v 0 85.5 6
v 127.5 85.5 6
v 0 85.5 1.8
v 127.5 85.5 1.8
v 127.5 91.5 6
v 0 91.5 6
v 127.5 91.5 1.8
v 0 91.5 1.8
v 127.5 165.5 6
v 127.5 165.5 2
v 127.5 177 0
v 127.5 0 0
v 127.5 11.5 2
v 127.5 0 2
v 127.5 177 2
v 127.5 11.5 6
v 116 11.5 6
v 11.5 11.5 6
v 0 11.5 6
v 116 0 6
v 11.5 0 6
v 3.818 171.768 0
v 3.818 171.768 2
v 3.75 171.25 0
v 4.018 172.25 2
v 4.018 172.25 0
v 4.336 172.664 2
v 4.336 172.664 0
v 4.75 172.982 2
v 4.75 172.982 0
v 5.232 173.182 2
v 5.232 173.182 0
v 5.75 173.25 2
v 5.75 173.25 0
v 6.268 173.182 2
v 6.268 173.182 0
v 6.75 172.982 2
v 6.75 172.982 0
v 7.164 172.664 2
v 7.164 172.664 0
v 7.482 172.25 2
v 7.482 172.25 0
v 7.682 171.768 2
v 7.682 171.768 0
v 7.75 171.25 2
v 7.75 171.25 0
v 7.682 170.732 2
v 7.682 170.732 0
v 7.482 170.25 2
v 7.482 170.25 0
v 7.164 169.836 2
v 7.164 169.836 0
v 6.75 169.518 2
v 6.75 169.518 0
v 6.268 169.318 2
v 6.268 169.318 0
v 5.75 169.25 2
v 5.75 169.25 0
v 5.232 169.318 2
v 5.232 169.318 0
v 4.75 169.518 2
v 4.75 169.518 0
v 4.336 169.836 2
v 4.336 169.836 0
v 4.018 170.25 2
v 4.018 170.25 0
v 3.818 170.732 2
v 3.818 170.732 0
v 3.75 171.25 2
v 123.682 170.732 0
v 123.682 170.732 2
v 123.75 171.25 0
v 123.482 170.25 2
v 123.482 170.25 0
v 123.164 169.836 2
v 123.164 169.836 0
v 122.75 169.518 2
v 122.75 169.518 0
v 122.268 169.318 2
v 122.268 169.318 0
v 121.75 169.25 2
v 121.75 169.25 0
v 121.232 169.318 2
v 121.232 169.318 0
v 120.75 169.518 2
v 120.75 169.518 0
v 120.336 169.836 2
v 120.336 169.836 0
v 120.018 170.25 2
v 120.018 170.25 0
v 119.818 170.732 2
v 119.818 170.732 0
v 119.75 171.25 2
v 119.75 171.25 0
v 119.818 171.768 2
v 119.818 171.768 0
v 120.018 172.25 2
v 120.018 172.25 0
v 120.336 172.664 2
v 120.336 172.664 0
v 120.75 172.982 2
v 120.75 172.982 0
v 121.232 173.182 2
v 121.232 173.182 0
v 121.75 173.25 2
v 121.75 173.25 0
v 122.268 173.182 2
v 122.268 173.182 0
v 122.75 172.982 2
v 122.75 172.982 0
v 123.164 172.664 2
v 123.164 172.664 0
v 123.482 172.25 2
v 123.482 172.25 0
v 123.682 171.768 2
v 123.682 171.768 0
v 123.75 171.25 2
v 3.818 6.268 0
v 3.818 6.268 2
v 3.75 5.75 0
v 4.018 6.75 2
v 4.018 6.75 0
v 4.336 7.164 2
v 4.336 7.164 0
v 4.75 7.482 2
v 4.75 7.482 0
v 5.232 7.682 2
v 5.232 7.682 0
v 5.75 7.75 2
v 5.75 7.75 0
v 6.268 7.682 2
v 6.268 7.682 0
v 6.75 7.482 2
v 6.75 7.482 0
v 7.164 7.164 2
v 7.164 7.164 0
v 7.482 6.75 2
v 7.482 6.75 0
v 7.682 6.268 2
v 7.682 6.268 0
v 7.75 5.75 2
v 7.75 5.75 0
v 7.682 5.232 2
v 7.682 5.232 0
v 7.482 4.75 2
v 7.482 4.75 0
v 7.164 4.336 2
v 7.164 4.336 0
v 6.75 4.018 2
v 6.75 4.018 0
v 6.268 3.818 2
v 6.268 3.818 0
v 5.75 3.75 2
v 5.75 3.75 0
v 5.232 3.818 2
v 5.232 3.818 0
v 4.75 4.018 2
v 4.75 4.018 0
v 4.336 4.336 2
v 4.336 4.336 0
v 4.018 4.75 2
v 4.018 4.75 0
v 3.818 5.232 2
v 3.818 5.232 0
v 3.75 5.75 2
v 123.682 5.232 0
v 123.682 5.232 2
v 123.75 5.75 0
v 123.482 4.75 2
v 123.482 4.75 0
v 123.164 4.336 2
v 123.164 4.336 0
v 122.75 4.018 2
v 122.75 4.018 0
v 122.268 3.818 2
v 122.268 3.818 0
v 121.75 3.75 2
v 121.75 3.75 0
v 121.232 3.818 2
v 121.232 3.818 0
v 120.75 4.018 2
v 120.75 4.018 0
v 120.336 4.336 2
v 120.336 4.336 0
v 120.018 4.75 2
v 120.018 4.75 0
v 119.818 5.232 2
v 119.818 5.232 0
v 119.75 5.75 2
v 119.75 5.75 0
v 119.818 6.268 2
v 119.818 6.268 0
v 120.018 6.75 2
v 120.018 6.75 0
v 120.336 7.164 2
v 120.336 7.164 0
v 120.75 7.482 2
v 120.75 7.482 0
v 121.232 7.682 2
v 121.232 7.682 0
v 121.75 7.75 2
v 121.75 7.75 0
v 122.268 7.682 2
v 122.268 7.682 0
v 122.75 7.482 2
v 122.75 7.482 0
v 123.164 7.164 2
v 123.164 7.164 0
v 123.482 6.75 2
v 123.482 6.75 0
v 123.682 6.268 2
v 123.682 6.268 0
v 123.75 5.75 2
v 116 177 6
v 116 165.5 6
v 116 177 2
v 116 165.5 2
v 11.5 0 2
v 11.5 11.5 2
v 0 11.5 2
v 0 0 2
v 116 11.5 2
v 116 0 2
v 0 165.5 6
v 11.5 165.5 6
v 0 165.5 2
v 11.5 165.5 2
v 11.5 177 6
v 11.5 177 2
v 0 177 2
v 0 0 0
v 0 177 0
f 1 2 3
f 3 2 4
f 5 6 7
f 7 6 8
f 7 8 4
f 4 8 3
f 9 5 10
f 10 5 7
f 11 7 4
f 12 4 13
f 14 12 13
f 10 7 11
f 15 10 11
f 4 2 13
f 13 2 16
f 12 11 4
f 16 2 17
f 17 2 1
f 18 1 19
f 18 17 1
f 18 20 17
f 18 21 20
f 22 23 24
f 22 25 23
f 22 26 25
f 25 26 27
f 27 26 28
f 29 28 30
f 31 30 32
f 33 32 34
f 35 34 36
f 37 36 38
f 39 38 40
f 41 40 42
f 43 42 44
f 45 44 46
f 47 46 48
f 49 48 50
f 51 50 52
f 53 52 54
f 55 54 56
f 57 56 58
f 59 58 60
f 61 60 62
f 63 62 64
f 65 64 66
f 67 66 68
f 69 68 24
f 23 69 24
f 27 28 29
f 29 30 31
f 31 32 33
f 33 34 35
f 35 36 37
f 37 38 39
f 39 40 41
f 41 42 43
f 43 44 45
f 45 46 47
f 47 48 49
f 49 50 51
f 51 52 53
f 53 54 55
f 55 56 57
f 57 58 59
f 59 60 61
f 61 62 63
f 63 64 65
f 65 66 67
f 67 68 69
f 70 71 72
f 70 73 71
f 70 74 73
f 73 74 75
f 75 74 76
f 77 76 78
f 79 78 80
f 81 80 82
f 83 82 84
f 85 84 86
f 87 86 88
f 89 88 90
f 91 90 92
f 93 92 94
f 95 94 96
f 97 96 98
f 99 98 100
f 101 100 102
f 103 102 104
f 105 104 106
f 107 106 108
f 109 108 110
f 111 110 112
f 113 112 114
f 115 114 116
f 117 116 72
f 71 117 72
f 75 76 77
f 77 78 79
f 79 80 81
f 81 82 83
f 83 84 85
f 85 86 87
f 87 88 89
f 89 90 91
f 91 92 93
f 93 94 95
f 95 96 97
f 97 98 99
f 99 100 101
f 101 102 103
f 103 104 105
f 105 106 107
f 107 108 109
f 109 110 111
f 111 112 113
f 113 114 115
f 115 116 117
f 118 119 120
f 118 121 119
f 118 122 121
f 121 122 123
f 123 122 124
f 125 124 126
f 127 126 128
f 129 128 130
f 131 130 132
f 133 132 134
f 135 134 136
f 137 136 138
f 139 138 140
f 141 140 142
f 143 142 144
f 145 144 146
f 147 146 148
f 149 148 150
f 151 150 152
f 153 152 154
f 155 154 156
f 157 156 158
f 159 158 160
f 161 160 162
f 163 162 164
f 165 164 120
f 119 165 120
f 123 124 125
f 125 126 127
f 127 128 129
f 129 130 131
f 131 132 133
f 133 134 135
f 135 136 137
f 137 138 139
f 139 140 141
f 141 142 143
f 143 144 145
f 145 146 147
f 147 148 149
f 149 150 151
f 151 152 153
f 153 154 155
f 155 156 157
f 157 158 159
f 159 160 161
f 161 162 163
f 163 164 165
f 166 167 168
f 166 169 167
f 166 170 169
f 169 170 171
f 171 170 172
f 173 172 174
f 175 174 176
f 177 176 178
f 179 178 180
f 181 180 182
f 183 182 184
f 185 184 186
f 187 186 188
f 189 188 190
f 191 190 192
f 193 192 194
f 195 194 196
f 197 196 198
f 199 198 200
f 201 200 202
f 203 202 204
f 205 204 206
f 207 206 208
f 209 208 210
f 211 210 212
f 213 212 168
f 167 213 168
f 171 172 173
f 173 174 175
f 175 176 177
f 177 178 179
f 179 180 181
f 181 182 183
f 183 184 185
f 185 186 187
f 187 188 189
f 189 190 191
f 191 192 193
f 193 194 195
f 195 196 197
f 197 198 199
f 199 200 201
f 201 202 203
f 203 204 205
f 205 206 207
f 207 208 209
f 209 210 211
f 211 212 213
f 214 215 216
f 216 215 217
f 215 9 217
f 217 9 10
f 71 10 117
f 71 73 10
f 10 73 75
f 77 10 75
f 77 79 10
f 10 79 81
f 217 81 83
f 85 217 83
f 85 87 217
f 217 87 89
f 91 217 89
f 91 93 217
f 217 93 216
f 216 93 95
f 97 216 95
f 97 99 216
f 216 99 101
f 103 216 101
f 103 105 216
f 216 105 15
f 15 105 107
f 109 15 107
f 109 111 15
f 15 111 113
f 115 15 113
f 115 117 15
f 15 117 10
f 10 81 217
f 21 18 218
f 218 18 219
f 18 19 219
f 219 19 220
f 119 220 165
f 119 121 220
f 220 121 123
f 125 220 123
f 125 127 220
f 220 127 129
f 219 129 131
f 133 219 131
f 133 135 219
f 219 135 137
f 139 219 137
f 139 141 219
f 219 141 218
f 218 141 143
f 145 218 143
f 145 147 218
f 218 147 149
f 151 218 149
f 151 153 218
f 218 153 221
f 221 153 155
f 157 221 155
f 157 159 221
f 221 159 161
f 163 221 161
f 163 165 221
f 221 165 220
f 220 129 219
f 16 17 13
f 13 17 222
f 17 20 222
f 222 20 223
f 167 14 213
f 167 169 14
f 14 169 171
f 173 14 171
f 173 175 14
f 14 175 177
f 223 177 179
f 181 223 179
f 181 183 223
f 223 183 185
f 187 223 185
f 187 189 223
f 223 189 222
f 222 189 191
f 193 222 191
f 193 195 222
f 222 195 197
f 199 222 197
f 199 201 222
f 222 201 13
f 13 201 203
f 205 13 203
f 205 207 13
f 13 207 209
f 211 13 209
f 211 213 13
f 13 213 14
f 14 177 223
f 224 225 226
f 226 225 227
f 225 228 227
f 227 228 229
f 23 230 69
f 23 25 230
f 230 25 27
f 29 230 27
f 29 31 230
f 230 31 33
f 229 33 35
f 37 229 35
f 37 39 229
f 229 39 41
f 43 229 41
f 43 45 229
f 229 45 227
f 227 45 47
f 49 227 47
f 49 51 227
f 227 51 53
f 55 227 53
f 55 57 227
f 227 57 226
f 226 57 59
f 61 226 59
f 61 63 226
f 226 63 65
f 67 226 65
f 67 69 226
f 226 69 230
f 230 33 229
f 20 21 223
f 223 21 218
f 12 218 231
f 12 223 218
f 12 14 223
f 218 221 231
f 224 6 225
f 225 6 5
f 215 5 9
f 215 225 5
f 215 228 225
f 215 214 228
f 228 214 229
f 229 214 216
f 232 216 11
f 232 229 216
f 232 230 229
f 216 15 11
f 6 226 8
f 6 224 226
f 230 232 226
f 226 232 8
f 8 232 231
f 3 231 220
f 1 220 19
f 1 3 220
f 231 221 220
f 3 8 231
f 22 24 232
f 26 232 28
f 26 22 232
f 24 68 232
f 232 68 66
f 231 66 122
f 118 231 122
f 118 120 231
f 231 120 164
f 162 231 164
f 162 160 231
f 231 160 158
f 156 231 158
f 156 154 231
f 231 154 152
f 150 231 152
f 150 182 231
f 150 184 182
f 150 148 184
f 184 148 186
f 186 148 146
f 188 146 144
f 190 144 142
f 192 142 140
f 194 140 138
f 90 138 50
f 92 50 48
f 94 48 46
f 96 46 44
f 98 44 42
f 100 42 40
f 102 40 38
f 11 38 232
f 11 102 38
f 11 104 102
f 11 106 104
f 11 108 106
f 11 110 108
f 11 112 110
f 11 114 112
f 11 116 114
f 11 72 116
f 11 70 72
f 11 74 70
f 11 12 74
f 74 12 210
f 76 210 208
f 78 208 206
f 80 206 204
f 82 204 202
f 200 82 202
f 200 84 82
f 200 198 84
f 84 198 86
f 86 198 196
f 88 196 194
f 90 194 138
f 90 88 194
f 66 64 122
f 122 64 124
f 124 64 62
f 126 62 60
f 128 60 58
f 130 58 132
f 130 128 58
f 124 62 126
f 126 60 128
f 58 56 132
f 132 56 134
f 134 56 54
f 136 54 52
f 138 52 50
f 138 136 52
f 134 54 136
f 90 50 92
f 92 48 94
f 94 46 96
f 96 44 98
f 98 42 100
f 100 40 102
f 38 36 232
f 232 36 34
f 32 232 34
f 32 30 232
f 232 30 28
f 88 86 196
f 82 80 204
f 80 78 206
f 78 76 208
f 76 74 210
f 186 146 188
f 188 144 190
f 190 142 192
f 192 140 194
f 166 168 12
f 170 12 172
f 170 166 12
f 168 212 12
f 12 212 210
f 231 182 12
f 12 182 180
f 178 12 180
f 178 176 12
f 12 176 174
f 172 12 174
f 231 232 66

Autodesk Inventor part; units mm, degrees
ref_plane "YZ Plane" through (0, 0, 0) normal (1, 0, 0) x (0, 1, 0)
ref_plane "XZ Plane" through (0, 0, 0) normal (0, 1, 0) x (-1, 0, 0)
ref_plane "XY Plane" through (0, 0, 0) normal (0, 0, 1) x (1, 0, 0)
sketch "Boceto1" plane through (0, 0, 0) normal (0, 0, 1) x (1, 0, 0)
  line L0 (0, 0) -> (127.5, 0)
  line L1 (127.5, 0) -> (127.5, 177)
  line L2 (127.5, 177) -> (0, 177)
  line L3 (0, 177) -> (0, 0)
  dimension "d32" = 127.5
  dimension "d33" = 177
extrude "Extrusión1" add sketch "Boceto1" along normal blind 6
ref_plane "Plano de trabajo6" through (0, 88.5, 0) normal (0, -1, 0) x (1, 0, 0)
ref_plane "Plano de trabajo7" through (63.75, 0, 0) normal (-1, 0, 0) x (0, 0, 1)
sketch "Boceto17" plane through (0, 0, 6) normal (0, 0, 1) x (1, 0, 0)
  line L0 (127.5, 0) -> (116, 0)
  line L1 (116, 0) -> (116, 11.5)
  line L2 (116, 11.5) -> (127.5, 11.5)
  line L3 (127.5, 11.5) -> (127.5, 0)
  line L4 (0, 0) -> (11.5, 0)
  line L5 (11.5, 0) -> (11.5, 11.5)
  line L6 (11.5, 11.5) -> (0, 11.5)
  line L7 (0, 11.5) -> (0, 0)
  line L8 (127.5, 177) -> (116, 177)
  line L9 (116, 177) -> (116, 165.5)
  line L10 (116, 165.5) -> (127.5, 165.5)
  line L11 (127.5, 165.5) -> (127.5, 177)
  line L12 (0, 177) -> (11.5, 177)
  line L13 (11.5, 177) -> (11.5, 165.5)
  line L14 (11.5, 165.5) -> (0, 165.5)
  line L15 (0, 165.5) -> (0, 177)
  dimension "d124" = 11.5
  dimension "d125" = 11.5
  dimension "d129" = 11.5
  dimension "d130" = 11.5
  dimension "d131" = 11.5
  dimension "d132" = 11.5
  dimension "d133" = 11.5
  dimension "d134" = 11.5
extrude "Extrusión12" cut sketch "Boceto17" against normal blind 4
sketch "Boceto18" plane through (0, 0, 2) normal (0, 0, 1) x (1, 0, 0)
  line L0 (0, 0) -> (11.5, 0)
  line L1 (11.5, 0) -> (11.5, 11.5)
  line L2 (11.5, 11.5) -> (0, 11.5)
  line L3 (0, 11.5) -> (0, 0)
  line L4 (127.5, 0) -> (116, 0)
  line L5 (116, 0) -> (116, 11.5)
  line L6 (116, 11.5) -> (127.5, 11.5)
  line L7 (127.5, 11.5) -> (127.5, 0)
  line L8 (127.5, 177) -> (116, 177)
  line L9 (116, 177) -> (116, 165.5)
  line L10 (116, 165.5) -> (127.5, 165.5)
  line L11 (127.5, 165.5) -> (127.5, 177)
  line L12 (0, 177) -> (11.5, 177)
  line L13 (11.5, 177) -> (11.5, 165.5)
  line L14 (11.5, 165.5) -> (0, 165.5)
  line L15 (0, 165.5) -> (0, 177)
  line L16 (116, 11.5) -> (127.5, 0)
  line L17 (127.5, 11.5) -> (116, 0)
  circle A0 centre (121.75, 5.75) radius 2
  dimension "d137" = 4
extrude "Extrusión13" cut sketch "Boceto18" against normal blind 3.2 contours A0 L17 L16 | L16 L17 A0 | A0 L16 L17 | L17 L16 A0
mirror "Simetría7" about plane through (63.75, 0, 0) normal (-1, 0, 0) of "Extrusión13"
mirror "Simetría8" about plane through (0, 88.5, 0) normal (0, -1, 0) of "Extrusión13", "Simetría7"
sketch "Boceto19" plane through (0, 0, 6) normal (0, 0, 1) x (1, 0, 0)
  line L0 (0, 0) -> (127.5, 0)
  line L1 (127.5, 0) -> (127.5, 85.5)
  line L2 (127.5, 85.5) -> (0, 85.5)
  line L3 (0, 85.5) -> (0, 0)
  line L4 (127.5, 0) -> (127.5, 177) projected
  line L5 (0, 85.5) -> (127.5, 85.5)
  line L6 (127.5, 85.5) -> (127.5, 91.5)
  line L7 (127.5, 91.5) -> (0, 91.5)
  line L8 (0, 91.5) -> (0, 85.5)
  line L9 (0, 91.5) -> (127.5, 91.5)
  line L10 (127.5, 91.5) -> (127.5, 177)
  line L11 (127.5, 177) -> (0, 177)
  line L12 (0, 177) -> (0, 91.5)
  dimension "d140" = 127.5
  dimension "d141" = 85.5
  dimension "d142" = 6
extrude "Extrusión14" cut sketch "Boceto19" against normal blind 4.2 contours L8 L7 L4 L2
properties part number "transillum_diffusor_partC_v1"
